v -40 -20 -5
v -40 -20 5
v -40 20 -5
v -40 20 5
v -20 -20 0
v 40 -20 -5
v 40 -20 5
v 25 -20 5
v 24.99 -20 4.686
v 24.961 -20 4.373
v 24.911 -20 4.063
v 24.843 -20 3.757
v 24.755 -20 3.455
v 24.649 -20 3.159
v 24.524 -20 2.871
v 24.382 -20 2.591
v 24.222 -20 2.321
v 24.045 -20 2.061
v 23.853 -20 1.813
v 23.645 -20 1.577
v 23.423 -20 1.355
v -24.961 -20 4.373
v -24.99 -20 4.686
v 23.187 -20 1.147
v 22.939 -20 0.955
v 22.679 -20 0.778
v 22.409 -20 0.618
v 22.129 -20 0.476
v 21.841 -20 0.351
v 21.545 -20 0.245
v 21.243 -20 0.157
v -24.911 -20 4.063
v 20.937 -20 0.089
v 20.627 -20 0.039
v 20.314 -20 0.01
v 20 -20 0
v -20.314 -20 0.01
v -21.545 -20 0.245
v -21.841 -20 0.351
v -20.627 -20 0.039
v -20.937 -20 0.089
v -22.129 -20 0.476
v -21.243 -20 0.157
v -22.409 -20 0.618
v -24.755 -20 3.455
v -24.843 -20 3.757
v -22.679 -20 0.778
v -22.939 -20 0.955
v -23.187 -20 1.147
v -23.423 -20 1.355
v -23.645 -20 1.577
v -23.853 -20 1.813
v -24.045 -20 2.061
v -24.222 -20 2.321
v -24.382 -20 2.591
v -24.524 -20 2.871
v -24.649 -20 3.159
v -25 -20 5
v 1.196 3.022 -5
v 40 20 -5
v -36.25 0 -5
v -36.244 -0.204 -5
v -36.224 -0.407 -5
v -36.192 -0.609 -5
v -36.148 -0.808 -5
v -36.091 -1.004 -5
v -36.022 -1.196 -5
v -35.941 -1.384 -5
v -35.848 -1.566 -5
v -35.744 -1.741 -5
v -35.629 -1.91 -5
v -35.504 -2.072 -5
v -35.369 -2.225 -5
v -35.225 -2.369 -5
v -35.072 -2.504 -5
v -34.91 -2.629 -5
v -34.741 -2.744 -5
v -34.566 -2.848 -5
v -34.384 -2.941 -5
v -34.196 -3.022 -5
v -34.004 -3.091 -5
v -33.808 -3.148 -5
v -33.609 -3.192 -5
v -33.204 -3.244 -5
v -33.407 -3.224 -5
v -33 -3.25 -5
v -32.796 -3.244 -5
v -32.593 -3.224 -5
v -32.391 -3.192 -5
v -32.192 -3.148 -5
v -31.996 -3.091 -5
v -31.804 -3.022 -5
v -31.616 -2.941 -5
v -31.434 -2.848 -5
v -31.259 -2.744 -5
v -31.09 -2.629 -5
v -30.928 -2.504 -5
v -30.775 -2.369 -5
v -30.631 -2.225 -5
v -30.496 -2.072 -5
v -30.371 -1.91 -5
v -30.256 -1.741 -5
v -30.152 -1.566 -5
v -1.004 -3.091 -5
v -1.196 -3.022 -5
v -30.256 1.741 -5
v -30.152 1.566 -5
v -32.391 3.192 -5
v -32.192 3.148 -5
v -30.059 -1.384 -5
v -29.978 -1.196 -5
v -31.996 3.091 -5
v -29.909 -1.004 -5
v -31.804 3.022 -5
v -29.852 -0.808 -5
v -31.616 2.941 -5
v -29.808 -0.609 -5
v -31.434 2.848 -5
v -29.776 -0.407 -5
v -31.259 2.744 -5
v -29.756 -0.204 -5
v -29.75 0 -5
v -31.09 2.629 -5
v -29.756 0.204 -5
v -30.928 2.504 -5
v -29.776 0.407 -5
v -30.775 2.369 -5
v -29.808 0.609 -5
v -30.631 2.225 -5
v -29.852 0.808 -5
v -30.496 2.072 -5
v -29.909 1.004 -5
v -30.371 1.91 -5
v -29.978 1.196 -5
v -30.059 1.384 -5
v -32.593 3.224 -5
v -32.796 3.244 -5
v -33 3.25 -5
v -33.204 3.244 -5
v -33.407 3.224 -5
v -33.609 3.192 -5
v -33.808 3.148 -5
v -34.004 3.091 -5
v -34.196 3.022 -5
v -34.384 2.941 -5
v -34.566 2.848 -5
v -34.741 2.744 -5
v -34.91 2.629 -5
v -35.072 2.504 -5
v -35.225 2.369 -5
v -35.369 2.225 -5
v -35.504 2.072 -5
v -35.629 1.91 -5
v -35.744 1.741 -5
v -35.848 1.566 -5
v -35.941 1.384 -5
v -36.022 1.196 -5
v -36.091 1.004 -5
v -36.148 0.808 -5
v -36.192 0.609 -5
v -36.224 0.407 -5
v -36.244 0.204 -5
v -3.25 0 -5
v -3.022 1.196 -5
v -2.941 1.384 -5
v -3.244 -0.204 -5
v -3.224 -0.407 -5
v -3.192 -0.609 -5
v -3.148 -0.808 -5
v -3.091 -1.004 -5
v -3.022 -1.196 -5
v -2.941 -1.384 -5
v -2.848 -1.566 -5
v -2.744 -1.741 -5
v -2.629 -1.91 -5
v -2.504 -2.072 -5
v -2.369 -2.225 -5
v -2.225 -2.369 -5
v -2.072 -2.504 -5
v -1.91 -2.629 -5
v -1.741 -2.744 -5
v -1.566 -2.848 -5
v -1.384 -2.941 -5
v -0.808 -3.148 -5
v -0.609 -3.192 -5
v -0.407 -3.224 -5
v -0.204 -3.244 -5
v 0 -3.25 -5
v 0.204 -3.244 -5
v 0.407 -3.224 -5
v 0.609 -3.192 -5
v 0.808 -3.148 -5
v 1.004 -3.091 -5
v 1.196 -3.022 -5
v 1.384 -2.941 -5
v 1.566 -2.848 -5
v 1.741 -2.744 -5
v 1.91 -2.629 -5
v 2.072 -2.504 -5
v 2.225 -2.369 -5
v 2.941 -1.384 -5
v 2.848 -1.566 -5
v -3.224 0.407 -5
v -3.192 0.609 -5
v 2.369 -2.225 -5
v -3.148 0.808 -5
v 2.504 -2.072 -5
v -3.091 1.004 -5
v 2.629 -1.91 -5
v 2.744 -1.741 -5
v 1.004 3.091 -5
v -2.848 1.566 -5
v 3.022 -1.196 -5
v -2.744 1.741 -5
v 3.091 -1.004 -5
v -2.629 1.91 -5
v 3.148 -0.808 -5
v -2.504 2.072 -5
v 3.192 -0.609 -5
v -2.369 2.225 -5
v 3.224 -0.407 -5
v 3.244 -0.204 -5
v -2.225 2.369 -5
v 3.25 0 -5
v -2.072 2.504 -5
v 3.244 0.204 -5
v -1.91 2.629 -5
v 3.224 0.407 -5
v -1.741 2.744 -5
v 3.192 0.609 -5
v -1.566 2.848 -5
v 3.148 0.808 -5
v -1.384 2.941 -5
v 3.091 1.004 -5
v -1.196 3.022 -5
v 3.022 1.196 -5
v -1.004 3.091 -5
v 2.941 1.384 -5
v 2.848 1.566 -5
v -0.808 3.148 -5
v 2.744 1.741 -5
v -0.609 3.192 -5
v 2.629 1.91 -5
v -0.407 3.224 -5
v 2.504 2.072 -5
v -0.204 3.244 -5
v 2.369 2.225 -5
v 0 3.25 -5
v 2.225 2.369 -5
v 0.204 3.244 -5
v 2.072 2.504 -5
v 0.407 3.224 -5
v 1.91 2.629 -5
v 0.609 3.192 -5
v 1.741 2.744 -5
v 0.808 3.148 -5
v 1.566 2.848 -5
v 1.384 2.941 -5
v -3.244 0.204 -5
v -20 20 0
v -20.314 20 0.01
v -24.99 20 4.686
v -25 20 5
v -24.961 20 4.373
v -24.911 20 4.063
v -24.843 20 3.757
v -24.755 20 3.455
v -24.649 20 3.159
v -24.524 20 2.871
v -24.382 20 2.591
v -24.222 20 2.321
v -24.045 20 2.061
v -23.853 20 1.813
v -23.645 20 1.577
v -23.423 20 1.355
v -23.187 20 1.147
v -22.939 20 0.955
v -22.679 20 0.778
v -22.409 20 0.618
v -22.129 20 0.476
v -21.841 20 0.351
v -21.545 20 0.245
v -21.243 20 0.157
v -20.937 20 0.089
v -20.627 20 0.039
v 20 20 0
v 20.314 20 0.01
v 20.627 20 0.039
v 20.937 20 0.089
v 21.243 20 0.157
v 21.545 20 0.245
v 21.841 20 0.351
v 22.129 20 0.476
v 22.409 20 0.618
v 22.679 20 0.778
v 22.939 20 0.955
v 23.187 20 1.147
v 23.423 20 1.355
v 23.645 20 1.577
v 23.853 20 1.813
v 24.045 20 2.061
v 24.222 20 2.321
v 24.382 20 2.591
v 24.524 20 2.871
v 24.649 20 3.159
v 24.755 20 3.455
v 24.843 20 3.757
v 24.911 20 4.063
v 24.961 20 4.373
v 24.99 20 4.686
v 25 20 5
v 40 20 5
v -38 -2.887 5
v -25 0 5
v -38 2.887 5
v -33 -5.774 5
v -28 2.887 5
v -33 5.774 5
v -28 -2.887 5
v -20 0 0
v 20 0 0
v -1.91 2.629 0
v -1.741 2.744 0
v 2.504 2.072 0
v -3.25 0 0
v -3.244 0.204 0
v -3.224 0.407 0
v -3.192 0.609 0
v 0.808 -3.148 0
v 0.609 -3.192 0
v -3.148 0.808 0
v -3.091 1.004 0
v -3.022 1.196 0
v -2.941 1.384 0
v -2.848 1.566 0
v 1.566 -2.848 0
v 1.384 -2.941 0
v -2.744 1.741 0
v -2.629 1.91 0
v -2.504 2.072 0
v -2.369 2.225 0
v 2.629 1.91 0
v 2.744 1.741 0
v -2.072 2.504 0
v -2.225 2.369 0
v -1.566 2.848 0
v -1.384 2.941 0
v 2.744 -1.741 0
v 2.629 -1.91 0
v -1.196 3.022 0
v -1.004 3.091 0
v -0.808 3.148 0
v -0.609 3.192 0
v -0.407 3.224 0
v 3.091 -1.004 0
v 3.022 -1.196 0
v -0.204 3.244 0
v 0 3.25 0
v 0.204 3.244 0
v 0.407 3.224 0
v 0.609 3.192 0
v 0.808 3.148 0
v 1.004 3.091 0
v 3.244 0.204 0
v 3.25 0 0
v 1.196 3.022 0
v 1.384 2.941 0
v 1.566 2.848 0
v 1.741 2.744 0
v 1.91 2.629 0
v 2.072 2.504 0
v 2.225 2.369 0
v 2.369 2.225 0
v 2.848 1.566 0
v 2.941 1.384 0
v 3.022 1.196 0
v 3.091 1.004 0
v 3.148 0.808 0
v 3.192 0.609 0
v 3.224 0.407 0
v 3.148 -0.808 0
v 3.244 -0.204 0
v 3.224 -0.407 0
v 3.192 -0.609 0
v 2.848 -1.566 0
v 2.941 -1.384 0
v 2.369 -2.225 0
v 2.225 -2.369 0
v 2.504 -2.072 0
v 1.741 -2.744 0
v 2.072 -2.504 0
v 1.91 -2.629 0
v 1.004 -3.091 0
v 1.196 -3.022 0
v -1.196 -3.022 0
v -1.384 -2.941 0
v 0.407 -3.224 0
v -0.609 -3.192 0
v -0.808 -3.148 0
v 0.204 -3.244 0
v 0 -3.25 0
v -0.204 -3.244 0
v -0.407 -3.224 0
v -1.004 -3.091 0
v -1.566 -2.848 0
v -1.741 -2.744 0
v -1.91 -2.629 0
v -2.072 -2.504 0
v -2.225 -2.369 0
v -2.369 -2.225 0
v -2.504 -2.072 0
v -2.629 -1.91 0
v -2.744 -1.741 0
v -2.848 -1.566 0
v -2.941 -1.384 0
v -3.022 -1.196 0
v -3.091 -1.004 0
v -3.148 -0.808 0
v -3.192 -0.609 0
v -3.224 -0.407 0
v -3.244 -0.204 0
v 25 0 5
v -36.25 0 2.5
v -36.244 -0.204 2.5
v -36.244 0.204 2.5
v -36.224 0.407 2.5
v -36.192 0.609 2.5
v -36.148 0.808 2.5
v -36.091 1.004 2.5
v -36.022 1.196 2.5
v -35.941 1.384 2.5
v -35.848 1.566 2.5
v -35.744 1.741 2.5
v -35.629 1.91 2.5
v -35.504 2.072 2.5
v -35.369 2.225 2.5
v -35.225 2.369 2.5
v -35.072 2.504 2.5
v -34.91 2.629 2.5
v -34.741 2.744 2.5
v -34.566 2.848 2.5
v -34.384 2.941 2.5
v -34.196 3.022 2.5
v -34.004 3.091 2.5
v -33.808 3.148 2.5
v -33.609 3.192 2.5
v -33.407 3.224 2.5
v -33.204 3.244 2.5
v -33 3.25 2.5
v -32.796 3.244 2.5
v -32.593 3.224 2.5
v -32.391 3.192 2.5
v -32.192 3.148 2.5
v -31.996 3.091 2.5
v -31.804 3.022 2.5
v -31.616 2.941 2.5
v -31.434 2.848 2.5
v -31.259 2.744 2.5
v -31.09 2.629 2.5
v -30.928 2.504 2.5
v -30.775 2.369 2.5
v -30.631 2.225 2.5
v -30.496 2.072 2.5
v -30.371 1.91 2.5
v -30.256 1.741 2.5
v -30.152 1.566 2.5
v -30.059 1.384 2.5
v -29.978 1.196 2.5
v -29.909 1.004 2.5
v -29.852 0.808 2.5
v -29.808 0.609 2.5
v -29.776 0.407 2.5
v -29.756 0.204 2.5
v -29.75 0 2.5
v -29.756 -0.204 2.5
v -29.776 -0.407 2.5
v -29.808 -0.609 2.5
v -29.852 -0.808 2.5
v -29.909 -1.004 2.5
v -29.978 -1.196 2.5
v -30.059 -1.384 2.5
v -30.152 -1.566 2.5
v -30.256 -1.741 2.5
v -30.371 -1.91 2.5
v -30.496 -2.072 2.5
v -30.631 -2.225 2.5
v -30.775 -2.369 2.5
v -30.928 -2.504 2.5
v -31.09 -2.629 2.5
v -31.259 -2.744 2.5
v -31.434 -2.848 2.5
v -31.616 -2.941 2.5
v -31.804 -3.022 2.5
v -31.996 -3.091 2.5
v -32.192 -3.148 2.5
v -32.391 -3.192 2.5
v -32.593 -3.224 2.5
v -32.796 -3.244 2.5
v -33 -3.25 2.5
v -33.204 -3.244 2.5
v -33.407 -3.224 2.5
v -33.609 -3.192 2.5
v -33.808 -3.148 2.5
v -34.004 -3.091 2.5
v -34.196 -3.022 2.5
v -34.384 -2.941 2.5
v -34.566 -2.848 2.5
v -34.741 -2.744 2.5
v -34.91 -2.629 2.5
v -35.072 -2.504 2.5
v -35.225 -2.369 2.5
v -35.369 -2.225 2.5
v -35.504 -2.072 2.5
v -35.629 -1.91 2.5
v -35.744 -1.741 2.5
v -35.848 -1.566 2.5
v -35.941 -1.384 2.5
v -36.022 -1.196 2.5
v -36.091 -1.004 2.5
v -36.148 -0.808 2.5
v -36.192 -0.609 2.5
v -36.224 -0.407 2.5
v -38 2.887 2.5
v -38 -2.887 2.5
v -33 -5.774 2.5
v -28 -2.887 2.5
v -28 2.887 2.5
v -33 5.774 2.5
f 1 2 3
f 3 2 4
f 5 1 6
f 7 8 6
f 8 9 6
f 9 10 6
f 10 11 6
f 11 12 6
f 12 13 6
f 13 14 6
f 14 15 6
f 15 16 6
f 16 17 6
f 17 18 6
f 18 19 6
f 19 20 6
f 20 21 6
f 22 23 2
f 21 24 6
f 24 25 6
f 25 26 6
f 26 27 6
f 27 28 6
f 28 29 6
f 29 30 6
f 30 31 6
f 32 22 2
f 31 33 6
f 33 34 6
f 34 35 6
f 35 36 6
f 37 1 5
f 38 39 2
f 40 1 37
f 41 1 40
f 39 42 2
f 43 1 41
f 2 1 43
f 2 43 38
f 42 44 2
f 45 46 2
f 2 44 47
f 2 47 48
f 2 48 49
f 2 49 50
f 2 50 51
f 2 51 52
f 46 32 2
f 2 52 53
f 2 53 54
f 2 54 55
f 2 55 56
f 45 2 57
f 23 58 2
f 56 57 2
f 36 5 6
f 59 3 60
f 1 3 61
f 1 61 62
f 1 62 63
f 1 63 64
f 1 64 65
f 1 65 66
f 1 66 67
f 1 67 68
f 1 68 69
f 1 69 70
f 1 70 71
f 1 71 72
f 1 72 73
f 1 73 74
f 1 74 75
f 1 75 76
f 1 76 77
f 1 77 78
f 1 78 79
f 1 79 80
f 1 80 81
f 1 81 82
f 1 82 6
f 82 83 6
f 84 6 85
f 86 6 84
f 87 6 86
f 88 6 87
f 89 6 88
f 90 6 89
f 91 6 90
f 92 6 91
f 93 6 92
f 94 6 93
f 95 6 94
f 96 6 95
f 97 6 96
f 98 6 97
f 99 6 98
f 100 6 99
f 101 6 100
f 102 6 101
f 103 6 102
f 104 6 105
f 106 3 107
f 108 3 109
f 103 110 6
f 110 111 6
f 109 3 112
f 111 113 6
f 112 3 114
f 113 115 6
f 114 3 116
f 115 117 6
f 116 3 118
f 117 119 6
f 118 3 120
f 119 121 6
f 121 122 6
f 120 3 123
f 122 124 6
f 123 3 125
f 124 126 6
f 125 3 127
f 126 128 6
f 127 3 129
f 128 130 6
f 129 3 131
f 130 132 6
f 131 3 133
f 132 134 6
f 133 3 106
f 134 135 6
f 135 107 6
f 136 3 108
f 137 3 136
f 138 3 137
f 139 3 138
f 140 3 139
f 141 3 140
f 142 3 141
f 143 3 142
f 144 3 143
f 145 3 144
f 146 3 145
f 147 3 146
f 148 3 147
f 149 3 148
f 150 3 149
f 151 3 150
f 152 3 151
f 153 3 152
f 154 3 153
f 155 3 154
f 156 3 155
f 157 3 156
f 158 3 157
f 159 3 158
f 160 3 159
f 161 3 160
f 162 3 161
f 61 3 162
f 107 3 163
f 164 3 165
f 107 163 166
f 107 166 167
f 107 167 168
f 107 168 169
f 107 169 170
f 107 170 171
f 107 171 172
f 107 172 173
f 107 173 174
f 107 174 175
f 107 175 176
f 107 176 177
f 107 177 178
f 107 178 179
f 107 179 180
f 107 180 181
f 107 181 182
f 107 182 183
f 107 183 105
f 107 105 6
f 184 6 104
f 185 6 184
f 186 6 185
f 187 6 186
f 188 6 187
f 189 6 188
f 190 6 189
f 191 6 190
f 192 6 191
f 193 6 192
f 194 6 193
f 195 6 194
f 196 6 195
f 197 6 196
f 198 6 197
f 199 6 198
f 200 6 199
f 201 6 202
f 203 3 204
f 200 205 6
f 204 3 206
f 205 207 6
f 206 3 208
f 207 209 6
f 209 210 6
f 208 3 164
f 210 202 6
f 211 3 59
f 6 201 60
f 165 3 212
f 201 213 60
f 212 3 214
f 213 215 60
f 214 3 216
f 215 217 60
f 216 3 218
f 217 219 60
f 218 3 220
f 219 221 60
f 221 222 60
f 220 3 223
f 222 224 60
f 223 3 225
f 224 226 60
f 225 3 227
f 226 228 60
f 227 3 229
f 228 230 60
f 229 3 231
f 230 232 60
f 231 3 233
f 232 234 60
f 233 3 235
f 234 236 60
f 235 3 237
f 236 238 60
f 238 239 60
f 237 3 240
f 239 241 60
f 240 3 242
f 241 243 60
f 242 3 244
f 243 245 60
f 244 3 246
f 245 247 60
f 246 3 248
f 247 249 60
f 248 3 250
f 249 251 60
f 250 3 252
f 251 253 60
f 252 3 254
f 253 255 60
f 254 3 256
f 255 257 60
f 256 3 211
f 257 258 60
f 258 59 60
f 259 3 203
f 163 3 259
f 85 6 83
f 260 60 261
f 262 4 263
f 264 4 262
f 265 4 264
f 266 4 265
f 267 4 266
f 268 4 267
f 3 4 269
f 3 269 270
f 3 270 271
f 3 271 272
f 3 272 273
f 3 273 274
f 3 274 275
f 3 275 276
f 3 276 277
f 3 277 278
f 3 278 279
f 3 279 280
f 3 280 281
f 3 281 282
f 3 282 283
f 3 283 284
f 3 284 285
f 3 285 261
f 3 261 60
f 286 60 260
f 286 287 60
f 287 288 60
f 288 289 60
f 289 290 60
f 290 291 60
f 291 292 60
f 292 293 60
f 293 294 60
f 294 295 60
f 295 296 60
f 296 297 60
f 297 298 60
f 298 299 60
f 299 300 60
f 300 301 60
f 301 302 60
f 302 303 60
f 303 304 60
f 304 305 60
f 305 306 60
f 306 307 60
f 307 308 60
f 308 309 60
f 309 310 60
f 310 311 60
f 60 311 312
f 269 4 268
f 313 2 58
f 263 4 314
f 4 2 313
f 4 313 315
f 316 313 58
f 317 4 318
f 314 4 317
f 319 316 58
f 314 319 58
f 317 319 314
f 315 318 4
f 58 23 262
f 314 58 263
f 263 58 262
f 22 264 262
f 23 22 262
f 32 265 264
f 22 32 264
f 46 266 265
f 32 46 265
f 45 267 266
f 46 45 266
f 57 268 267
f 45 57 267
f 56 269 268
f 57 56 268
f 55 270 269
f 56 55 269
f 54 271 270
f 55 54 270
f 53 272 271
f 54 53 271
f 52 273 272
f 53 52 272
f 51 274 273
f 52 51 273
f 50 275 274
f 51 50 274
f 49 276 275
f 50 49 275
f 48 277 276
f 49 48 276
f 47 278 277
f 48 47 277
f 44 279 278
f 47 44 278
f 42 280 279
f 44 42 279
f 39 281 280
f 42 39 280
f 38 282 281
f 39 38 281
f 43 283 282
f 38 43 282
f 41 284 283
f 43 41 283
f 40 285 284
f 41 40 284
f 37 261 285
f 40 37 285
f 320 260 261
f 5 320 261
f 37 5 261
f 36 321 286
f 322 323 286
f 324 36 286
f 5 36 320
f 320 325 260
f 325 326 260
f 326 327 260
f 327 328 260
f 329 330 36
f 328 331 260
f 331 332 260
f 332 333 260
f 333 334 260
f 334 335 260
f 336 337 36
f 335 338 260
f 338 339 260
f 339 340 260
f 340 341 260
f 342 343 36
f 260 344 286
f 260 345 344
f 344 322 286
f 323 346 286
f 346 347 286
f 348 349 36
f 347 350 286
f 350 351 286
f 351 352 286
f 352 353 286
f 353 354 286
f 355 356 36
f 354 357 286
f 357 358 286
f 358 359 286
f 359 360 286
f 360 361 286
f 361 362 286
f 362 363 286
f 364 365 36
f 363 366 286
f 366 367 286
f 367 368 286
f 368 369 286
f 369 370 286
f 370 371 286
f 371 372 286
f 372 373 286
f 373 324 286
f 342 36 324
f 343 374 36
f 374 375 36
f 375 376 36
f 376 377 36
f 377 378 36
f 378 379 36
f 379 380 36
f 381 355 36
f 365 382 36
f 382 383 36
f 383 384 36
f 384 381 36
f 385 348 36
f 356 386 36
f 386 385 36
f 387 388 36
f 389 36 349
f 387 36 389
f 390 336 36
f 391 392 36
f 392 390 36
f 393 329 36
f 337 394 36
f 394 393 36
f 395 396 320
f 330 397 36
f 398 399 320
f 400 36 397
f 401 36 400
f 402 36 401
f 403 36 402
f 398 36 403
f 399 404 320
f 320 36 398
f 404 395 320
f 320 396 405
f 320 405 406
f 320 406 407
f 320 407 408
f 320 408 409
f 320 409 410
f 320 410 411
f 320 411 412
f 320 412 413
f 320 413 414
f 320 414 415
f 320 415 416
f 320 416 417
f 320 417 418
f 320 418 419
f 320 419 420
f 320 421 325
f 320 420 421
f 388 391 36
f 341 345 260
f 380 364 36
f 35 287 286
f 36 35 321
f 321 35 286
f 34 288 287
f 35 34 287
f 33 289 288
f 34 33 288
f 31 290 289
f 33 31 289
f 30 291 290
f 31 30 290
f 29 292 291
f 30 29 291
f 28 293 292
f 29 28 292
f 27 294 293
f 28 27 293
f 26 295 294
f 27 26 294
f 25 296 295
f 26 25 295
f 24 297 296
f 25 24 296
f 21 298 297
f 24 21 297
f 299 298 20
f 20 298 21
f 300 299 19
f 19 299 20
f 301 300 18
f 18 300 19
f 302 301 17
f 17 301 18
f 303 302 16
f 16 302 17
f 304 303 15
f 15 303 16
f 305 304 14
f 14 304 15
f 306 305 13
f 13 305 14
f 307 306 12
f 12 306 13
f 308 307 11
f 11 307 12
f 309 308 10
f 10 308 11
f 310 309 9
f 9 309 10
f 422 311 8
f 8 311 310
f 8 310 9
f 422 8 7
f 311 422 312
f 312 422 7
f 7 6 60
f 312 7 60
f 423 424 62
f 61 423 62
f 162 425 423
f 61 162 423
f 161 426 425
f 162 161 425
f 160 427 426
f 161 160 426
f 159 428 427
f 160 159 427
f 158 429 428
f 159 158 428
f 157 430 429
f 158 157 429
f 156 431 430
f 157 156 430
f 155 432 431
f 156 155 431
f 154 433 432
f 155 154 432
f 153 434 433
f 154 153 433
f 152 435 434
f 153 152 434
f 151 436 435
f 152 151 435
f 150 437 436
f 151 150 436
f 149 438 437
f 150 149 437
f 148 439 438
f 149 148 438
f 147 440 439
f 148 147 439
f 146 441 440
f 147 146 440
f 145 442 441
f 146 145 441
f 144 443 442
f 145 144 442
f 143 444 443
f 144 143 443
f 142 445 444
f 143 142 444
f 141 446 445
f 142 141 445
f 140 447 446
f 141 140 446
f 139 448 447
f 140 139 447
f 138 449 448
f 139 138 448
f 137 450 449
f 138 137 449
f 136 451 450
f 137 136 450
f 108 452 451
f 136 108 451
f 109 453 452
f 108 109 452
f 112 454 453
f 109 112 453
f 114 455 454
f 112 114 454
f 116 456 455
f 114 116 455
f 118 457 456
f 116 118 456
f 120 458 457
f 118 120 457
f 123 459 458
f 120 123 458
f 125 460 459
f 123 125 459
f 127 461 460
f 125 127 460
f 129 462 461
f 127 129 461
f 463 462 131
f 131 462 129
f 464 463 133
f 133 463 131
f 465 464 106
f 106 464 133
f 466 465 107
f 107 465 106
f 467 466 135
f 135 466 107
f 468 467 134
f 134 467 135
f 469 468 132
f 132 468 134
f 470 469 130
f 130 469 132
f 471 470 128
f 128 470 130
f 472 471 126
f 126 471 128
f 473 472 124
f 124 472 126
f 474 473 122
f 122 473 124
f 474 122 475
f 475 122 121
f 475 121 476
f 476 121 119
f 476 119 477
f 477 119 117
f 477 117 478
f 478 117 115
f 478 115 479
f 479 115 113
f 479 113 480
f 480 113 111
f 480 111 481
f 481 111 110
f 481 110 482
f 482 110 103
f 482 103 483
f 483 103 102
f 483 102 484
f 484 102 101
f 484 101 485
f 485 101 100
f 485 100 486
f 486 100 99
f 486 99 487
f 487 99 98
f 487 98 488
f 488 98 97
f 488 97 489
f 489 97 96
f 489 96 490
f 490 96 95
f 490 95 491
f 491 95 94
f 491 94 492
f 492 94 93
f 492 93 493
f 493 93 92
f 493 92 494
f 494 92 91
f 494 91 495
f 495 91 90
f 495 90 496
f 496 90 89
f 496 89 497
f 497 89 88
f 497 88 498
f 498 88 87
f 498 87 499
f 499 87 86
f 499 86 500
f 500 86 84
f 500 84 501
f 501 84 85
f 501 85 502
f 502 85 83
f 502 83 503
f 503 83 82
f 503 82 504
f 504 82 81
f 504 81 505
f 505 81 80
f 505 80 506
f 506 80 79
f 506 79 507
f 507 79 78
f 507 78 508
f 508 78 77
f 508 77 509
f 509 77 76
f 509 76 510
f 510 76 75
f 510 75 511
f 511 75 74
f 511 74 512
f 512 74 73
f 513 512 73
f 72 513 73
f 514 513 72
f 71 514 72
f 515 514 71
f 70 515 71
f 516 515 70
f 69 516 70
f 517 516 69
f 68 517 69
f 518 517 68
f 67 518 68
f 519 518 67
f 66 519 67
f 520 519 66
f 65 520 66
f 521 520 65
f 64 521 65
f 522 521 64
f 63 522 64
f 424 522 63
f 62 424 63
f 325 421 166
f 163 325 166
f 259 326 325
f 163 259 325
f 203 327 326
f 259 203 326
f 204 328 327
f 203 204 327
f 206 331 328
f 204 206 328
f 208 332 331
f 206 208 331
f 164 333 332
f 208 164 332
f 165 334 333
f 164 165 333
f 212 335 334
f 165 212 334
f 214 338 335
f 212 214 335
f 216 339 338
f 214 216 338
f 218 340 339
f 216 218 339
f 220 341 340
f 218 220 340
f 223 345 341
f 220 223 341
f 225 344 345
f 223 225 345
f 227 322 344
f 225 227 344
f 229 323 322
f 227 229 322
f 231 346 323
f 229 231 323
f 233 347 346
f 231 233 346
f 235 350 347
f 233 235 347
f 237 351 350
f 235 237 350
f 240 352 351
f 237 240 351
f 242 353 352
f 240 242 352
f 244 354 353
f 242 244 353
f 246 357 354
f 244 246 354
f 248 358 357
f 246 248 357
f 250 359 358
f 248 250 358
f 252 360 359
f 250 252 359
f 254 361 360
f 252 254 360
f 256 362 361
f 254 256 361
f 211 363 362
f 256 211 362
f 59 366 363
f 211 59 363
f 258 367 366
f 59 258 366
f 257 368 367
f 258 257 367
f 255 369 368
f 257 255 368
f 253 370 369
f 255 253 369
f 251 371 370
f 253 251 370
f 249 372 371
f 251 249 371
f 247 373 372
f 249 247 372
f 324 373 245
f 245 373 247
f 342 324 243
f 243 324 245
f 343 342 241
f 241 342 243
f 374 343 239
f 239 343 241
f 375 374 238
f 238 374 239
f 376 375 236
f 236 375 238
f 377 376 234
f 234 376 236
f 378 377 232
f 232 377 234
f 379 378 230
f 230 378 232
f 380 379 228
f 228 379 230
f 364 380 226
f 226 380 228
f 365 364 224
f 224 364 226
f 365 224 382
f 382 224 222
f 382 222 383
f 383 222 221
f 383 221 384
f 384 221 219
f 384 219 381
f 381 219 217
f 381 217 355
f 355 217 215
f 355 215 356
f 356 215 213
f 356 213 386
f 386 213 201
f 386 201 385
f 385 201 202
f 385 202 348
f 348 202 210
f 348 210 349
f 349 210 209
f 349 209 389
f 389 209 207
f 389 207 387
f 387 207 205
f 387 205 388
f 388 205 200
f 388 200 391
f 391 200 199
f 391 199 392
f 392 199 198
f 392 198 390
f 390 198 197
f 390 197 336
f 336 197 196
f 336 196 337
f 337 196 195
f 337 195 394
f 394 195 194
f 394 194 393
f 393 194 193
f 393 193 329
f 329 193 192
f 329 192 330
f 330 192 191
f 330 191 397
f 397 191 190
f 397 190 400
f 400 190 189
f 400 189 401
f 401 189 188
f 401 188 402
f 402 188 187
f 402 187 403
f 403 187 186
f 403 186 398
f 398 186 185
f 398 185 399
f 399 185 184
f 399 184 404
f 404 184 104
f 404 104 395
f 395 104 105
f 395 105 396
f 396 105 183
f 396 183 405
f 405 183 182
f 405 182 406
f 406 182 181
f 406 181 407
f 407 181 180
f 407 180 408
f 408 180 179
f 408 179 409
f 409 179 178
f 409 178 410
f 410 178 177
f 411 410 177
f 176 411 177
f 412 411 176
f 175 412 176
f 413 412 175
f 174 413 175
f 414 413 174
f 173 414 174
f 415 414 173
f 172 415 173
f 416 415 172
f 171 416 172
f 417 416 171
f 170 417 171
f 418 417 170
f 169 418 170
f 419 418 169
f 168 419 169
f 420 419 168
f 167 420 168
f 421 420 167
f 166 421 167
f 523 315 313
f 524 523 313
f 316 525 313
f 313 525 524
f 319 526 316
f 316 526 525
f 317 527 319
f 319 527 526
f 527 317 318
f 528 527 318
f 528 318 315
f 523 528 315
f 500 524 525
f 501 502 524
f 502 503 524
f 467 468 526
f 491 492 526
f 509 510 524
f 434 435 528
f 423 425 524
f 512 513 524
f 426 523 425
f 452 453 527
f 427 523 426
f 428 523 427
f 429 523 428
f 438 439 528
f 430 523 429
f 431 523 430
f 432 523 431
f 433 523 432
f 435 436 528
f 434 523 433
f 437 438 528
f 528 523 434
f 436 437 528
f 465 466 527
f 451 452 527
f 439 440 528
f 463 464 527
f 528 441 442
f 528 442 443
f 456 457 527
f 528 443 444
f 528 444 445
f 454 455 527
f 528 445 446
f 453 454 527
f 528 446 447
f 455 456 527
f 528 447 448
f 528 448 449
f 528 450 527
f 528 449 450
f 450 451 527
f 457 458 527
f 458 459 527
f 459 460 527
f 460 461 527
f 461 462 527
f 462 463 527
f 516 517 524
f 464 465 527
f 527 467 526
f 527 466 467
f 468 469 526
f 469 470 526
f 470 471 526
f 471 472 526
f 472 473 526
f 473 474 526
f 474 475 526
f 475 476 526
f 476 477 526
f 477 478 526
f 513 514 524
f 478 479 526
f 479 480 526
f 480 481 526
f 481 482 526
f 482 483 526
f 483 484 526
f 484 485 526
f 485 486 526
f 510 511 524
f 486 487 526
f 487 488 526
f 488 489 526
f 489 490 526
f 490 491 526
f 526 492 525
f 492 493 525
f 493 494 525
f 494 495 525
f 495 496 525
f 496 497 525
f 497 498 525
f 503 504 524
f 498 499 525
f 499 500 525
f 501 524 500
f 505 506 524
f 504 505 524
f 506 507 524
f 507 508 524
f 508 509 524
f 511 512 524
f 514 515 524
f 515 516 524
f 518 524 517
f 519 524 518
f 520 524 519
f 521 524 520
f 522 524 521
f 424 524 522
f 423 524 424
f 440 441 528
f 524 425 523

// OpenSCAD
$fn=100;

cm=10;

length=8*cm;
width=4*cm;
height=1*cm;

module hex(r,h){
  echo("r is ", r);
  echo("h is ",h);

  passes = [0:2];
  chord=r*1/tan(60);

  union(){
     for(pass=passes){
       rotate([0,0,pass*60]) cube(size=[r,chord,h],center=true);
     }
  }
}

module block(){
  cube(size=[length, width, height],center=true);
}

module scoop(){
  union(){
    rotate([90,0,0]) translate([-length/4,height/2,-width/1.75]) cylinder(d=height,h=width*1.5);
    rotate([90,0,0]) translate([length/4,height/2,-width/1.75]) cylinder(d=height,h=width*1.5);
    translate([0,0,height/4]) cube(size=[length/2,width*1.5,height/2],center=true);
  }
}

module fastenerCuts(){
  union(){
    translate([-length/2+1/2*cm+2,0,height/2]) hex(r=1*cm,h=1/2*cm);
    translate([-length/2+1/2*cm+2,0,-height/2]) cylinder(r=3.25,h=height*1.5);
    translate([0,0,-height/2]) cylinder(r=3.25,h=height*1.5);
  }
}

module assembly(){
  difference(){
    block();
    scoop();
    fastenerCuts();
  }
}

assembly();
